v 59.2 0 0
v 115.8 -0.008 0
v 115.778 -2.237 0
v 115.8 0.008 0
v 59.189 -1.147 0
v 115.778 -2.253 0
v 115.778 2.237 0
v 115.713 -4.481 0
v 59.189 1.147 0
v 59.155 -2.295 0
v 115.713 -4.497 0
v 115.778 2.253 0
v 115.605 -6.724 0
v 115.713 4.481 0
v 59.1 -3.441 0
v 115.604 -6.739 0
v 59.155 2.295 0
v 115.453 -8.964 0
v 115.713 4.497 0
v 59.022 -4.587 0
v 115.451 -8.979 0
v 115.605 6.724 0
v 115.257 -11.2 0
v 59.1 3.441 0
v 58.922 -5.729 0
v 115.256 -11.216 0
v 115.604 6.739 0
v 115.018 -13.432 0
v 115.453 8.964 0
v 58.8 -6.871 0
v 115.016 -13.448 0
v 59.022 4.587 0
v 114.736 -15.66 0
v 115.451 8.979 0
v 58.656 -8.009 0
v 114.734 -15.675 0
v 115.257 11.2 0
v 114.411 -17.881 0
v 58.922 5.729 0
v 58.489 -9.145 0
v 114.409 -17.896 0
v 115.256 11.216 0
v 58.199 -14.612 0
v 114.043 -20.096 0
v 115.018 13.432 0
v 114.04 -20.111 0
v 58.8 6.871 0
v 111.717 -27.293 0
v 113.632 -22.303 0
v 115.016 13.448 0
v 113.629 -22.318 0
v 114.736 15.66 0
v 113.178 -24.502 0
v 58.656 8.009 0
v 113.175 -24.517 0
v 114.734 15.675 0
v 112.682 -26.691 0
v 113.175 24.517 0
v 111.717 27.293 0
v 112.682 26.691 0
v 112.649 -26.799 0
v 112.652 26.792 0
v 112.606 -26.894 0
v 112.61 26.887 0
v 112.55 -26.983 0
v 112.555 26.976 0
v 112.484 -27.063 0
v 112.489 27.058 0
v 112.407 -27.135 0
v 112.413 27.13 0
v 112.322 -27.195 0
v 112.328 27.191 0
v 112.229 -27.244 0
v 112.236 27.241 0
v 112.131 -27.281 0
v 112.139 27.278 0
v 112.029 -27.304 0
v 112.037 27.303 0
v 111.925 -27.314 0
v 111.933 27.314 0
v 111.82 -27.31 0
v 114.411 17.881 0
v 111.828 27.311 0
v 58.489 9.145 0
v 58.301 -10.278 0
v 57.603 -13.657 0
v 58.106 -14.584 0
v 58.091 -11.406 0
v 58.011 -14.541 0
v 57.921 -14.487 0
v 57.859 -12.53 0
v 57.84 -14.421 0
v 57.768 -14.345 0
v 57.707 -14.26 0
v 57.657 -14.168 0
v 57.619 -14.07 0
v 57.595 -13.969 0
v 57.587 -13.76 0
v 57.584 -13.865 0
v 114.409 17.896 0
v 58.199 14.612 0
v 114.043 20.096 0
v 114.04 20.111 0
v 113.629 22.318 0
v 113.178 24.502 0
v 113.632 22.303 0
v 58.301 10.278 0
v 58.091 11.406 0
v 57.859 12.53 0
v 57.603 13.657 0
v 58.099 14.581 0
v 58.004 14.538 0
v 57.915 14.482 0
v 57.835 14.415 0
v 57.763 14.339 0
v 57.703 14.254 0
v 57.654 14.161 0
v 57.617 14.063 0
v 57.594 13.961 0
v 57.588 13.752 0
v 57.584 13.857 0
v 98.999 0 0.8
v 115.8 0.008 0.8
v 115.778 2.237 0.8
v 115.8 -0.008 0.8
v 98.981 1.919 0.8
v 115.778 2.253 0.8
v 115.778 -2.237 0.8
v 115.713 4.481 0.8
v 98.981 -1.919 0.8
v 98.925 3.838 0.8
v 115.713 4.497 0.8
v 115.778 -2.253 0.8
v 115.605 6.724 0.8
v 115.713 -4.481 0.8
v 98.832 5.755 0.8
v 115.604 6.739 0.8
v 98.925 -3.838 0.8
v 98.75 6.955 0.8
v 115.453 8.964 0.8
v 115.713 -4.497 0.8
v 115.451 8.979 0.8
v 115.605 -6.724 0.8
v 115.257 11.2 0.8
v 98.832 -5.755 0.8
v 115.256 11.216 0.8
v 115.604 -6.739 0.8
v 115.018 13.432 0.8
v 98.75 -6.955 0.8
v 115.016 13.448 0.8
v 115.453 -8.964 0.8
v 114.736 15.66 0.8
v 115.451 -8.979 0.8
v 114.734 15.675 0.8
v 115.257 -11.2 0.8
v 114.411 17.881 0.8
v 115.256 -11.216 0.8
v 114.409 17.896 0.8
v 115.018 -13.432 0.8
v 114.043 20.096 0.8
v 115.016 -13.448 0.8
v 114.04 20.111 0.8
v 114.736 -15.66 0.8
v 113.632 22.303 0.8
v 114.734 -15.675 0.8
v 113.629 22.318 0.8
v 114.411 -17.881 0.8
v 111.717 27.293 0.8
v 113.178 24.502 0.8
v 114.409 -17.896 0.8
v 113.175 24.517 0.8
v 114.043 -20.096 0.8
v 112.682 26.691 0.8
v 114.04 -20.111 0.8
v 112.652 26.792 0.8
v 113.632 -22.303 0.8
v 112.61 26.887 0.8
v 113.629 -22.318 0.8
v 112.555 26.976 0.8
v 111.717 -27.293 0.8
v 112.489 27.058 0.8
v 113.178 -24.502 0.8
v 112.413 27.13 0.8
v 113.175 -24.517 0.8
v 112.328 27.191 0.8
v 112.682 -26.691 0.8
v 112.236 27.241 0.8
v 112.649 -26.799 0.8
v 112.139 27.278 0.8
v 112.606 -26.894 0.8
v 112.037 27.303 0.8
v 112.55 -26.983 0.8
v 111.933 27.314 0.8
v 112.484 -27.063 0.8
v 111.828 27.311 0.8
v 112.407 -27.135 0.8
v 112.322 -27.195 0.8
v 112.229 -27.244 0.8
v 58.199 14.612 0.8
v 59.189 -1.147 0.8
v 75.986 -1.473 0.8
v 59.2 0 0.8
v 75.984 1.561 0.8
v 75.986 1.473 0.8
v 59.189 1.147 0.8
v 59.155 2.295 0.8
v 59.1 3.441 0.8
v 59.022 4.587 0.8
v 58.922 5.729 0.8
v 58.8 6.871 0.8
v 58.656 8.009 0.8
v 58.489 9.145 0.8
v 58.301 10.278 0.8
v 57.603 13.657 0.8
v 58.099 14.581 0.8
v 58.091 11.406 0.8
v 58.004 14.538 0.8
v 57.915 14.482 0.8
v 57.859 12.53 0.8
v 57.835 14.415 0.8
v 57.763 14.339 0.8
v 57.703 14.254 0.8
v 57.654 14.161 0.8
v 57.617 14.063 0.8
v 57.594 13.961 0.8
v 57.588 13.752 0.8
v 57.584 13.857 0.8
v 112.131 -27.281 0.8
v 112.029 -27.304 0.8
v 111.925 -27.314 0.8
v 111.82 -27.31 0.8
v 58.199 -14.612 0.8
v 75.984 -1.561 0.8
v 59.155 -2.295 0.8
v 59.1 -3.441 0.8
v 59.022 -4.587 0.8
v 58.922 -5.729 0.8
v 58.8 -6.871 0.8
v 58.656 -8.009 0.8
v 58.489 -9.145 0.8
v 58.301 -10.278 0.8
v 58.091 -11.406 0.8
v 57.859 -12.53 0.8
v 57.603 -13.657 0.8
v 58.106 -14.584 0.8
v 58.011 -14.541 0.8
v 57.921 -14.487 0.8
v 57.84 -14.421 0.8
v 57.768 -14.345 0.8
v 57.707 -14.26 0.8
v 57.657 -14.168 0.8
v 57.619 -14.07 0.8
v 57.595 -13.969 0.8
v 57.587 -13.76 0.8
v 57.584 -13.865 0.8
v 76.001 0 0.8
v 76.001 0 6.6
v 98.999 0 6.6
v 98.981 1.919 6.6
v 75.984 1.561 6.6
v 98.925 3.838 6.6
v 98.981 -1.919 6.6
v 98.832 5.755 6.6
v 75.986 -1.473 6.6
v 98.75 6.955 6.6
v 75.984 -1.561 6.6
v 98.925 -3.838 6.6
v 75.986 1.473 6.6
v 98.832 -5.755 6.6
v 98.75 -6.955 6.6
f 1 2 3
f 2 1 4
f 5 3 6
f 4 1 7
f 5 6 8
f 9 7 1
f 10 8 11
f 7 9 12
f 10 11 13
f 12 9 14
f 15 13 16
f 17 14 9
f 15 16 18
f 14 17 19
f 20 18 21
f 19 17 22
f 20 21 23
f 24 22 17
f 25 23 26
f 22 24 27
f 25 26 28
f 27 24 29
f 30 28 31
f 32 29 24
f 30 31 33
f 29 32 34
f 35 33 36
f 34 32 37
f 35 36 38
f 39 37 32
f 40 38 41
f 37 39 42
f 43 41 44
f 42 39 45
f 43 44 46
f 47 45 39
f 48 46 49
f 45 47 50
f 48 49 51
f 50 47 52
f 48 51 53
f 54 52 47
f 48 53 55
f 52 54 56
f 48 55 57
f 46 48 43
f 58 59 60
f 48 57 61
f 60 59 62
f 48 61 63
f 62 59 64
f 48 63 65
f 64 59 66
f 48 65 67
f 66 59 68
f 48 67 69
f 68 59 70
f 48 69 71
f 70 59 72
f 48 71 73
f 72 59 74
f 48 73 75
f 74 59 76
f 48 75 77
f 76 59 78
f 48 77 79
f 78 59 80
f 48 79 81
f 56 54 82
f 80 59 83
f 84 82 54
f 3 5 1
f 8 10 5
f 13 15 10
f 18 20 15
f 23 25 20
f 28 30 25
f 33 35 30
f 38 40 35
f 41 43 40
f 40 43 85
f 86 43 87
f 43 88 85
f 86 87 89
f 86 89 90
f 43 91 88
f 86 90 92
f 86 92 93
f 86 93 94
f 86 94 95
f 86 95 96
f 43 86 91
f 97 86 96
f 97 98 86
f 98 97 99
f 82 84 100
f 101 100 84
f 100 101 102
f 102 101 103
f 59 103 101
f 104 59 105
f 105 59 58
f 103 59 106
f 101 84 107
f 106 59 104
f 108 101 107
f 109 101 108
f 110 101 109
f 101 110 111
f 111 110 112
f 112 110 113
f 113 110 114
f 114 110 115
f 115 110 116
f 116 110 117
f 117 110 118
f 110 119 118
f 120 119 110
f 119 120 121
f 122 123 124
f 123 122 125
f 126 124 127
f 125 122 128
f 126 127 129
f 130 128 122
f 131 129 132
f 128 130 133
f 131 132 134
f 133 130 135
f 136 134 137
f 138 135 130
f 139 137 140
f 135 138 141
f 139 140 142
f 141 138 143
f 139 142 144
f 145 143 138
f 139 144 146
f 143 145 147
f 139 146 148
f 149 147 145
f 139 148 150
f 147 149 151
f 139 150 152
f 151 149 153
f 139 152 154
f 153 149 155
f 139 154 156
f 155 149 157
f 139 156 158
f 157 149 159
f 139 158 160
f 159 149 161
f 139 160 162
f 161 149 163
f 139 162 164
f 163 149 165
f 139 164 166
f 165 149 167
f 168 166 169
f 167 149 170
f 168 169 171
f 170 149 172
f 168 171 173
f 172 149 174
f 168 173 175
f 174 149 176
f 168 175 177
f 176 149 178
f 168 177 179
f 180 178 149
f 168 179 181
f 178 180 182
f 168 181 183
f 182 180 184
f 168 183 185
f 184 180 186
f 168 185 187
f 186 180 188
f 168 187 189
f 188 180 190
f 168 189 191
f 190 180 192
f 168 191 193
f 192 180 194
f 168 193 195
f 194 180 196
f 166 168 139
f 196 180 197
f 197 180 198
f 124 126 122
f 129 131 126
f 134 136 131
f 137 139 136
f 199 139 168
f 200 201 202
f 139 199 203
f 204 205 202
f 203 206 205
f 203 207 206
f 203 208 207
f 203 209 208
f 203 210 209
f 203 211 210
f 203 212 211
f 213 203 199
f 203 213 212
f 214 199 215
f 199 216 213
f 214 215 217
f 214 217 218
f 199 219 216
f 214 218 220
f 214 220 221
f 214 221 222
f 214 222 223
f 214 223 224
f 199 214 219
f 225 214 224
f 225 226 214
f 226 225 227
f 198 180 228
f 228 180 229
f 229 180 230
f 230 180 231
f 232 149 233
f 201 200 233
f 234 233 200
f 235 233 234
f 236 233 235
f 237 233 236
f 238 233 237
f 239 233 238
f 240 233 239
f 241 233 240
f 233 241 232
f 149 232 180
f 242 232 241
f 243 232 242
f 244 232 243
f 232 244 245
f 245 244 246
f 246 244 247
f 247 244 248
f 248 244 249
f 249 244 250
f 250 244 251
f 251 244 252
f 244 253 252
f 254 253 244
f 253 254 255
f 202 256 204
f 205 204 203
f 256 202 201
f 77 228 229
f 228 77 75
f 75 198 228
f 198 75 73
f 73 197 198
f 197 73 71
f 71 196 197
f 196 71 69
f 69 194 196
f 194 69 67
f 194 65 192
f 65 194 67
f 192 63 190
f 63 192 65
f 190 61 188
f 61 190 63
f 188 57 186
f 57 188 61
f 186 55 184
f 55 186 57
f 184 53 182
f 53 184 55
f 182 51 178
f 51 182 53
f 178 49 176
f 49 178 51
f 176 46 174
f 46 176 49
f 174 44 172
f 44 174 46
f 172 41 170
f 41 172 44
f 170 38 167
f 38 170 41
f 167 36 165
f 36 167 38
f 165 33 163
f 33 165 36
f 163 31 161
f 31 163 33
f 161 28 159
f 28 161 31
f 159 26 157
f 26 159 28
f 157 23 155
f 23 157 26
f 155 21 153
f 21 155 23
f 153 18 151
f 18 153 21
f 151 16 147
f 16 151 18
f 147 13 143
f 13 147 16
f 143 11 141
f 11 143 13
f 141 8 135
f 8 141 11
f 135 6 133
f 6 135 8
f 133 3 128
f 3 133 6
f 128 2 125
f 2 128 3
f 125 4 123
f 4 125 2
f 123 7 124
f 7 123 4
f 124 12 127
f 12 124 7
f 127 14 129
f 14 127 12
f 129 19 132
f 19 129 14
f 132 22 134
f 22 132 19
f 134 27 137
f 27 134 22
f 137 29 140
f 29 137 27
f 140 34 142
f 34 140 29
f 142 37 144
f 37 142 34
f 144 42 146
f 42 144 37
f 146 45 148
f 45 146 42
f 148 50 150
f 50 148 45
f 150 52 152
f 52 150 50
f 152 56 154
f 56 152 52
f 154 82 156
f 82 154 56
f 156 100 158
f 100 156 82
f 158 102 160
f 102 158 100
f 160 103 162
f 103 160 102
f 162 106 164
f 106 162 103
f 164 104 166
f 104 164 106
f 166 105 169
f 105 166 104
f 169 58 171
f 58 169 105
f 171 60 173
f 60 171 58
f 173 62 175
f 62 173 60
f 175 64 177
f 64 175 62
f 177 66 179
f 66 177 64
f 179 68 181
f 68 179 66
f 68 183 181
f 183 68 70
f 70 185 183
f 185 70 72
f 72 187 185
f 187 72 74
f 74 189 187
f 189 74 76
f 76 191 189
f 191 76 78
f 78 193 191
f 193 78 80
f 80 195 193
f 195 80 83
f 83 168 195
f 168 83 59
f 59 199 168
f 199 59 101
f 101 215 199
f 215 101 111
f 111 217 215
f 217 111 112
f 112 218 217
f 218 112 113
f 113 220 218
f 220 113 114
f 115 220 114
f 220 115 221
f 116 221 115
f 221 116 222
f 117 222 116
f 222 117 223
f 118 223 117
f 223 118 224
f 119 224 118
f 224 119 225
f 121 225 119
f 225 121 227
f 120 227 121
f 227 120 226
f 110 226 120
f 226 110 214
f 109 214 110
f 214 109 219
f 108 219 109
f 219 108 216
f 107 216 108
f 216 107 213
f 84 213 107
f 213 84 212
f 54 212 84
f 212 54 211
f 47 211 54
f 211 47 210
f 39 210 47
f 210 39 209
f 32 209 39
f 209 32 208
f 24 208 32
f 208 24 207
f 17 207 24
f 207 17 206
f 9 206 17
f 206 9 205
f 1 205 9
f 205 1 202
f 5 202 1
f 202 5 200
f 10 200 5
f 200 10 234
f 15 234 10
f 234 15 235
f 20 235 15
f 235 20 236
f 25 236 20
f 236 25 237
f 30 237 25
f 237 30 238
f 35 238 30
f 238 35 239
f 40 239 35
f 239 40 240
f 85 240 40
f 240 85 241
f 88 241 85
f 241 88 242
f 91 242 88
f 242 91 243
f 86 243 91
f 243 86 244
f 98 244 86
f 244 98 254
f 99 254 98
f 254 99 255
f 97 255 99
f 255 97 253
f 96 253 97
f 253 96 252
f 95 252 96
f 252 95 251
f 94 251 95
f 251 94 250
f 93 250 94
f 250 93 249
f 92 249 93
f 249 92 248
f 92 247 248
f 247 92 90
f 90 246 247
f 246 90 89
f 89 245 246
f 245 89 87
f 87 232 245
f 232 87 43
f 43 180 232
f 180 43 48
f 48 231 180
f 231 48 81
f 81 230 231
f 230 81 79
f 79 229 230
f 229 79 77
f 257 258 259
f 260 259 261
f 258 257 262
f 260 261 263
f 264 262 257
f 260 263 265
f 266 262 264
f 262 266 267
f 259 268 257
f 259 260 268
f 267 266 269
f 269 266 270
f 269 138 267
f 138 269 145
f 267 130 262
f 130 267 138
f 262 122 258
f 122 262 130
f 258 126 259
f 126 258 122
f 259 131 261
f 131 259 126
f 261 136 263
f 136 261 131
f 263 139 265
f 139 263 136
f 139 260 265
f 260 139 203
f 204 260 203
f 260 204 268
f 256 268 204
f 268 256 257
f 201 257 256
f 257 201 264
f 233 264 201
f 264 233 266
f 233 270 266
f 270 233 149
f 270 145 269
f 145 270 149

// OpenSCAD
// Gen-DC — bobbin BASE (bottom flange + hub). Print x12, flange down. Wind 24 AWG x 253 t around
// the hub with the LID glued on (coil_lid.stl). Copper lives ONLY between the flanges (no proud winds).
include <parameters.scad>;
$fn = 48;
module sector_2d(r_in, r_out, ang) {
    polygon([
        for (a = [-ang/2 : ang/24 : ang/2]) [r_in*cos(a), r_in*sin(a)],
        for (a = [ang/2 : -ang/24 : -ang/2]) [r_out*cos(a), r_out*sin(a)]
    ]);
}
module footprint_2d() { offset(r=wall) sector_2d(coil_id_r, coil_od_r, span_deg); }
module hub_2d()       { offset(delta=-coil_core_inset) sector_2d(coil_id_r, coil_od_r, span_deg); }

union() {
    linear_extrude(flange_t) footprint_2d();
    translate([0, 0, flange_t - 0.01]) linear_extrude(former_web + 0.01) hub_2d();
}
